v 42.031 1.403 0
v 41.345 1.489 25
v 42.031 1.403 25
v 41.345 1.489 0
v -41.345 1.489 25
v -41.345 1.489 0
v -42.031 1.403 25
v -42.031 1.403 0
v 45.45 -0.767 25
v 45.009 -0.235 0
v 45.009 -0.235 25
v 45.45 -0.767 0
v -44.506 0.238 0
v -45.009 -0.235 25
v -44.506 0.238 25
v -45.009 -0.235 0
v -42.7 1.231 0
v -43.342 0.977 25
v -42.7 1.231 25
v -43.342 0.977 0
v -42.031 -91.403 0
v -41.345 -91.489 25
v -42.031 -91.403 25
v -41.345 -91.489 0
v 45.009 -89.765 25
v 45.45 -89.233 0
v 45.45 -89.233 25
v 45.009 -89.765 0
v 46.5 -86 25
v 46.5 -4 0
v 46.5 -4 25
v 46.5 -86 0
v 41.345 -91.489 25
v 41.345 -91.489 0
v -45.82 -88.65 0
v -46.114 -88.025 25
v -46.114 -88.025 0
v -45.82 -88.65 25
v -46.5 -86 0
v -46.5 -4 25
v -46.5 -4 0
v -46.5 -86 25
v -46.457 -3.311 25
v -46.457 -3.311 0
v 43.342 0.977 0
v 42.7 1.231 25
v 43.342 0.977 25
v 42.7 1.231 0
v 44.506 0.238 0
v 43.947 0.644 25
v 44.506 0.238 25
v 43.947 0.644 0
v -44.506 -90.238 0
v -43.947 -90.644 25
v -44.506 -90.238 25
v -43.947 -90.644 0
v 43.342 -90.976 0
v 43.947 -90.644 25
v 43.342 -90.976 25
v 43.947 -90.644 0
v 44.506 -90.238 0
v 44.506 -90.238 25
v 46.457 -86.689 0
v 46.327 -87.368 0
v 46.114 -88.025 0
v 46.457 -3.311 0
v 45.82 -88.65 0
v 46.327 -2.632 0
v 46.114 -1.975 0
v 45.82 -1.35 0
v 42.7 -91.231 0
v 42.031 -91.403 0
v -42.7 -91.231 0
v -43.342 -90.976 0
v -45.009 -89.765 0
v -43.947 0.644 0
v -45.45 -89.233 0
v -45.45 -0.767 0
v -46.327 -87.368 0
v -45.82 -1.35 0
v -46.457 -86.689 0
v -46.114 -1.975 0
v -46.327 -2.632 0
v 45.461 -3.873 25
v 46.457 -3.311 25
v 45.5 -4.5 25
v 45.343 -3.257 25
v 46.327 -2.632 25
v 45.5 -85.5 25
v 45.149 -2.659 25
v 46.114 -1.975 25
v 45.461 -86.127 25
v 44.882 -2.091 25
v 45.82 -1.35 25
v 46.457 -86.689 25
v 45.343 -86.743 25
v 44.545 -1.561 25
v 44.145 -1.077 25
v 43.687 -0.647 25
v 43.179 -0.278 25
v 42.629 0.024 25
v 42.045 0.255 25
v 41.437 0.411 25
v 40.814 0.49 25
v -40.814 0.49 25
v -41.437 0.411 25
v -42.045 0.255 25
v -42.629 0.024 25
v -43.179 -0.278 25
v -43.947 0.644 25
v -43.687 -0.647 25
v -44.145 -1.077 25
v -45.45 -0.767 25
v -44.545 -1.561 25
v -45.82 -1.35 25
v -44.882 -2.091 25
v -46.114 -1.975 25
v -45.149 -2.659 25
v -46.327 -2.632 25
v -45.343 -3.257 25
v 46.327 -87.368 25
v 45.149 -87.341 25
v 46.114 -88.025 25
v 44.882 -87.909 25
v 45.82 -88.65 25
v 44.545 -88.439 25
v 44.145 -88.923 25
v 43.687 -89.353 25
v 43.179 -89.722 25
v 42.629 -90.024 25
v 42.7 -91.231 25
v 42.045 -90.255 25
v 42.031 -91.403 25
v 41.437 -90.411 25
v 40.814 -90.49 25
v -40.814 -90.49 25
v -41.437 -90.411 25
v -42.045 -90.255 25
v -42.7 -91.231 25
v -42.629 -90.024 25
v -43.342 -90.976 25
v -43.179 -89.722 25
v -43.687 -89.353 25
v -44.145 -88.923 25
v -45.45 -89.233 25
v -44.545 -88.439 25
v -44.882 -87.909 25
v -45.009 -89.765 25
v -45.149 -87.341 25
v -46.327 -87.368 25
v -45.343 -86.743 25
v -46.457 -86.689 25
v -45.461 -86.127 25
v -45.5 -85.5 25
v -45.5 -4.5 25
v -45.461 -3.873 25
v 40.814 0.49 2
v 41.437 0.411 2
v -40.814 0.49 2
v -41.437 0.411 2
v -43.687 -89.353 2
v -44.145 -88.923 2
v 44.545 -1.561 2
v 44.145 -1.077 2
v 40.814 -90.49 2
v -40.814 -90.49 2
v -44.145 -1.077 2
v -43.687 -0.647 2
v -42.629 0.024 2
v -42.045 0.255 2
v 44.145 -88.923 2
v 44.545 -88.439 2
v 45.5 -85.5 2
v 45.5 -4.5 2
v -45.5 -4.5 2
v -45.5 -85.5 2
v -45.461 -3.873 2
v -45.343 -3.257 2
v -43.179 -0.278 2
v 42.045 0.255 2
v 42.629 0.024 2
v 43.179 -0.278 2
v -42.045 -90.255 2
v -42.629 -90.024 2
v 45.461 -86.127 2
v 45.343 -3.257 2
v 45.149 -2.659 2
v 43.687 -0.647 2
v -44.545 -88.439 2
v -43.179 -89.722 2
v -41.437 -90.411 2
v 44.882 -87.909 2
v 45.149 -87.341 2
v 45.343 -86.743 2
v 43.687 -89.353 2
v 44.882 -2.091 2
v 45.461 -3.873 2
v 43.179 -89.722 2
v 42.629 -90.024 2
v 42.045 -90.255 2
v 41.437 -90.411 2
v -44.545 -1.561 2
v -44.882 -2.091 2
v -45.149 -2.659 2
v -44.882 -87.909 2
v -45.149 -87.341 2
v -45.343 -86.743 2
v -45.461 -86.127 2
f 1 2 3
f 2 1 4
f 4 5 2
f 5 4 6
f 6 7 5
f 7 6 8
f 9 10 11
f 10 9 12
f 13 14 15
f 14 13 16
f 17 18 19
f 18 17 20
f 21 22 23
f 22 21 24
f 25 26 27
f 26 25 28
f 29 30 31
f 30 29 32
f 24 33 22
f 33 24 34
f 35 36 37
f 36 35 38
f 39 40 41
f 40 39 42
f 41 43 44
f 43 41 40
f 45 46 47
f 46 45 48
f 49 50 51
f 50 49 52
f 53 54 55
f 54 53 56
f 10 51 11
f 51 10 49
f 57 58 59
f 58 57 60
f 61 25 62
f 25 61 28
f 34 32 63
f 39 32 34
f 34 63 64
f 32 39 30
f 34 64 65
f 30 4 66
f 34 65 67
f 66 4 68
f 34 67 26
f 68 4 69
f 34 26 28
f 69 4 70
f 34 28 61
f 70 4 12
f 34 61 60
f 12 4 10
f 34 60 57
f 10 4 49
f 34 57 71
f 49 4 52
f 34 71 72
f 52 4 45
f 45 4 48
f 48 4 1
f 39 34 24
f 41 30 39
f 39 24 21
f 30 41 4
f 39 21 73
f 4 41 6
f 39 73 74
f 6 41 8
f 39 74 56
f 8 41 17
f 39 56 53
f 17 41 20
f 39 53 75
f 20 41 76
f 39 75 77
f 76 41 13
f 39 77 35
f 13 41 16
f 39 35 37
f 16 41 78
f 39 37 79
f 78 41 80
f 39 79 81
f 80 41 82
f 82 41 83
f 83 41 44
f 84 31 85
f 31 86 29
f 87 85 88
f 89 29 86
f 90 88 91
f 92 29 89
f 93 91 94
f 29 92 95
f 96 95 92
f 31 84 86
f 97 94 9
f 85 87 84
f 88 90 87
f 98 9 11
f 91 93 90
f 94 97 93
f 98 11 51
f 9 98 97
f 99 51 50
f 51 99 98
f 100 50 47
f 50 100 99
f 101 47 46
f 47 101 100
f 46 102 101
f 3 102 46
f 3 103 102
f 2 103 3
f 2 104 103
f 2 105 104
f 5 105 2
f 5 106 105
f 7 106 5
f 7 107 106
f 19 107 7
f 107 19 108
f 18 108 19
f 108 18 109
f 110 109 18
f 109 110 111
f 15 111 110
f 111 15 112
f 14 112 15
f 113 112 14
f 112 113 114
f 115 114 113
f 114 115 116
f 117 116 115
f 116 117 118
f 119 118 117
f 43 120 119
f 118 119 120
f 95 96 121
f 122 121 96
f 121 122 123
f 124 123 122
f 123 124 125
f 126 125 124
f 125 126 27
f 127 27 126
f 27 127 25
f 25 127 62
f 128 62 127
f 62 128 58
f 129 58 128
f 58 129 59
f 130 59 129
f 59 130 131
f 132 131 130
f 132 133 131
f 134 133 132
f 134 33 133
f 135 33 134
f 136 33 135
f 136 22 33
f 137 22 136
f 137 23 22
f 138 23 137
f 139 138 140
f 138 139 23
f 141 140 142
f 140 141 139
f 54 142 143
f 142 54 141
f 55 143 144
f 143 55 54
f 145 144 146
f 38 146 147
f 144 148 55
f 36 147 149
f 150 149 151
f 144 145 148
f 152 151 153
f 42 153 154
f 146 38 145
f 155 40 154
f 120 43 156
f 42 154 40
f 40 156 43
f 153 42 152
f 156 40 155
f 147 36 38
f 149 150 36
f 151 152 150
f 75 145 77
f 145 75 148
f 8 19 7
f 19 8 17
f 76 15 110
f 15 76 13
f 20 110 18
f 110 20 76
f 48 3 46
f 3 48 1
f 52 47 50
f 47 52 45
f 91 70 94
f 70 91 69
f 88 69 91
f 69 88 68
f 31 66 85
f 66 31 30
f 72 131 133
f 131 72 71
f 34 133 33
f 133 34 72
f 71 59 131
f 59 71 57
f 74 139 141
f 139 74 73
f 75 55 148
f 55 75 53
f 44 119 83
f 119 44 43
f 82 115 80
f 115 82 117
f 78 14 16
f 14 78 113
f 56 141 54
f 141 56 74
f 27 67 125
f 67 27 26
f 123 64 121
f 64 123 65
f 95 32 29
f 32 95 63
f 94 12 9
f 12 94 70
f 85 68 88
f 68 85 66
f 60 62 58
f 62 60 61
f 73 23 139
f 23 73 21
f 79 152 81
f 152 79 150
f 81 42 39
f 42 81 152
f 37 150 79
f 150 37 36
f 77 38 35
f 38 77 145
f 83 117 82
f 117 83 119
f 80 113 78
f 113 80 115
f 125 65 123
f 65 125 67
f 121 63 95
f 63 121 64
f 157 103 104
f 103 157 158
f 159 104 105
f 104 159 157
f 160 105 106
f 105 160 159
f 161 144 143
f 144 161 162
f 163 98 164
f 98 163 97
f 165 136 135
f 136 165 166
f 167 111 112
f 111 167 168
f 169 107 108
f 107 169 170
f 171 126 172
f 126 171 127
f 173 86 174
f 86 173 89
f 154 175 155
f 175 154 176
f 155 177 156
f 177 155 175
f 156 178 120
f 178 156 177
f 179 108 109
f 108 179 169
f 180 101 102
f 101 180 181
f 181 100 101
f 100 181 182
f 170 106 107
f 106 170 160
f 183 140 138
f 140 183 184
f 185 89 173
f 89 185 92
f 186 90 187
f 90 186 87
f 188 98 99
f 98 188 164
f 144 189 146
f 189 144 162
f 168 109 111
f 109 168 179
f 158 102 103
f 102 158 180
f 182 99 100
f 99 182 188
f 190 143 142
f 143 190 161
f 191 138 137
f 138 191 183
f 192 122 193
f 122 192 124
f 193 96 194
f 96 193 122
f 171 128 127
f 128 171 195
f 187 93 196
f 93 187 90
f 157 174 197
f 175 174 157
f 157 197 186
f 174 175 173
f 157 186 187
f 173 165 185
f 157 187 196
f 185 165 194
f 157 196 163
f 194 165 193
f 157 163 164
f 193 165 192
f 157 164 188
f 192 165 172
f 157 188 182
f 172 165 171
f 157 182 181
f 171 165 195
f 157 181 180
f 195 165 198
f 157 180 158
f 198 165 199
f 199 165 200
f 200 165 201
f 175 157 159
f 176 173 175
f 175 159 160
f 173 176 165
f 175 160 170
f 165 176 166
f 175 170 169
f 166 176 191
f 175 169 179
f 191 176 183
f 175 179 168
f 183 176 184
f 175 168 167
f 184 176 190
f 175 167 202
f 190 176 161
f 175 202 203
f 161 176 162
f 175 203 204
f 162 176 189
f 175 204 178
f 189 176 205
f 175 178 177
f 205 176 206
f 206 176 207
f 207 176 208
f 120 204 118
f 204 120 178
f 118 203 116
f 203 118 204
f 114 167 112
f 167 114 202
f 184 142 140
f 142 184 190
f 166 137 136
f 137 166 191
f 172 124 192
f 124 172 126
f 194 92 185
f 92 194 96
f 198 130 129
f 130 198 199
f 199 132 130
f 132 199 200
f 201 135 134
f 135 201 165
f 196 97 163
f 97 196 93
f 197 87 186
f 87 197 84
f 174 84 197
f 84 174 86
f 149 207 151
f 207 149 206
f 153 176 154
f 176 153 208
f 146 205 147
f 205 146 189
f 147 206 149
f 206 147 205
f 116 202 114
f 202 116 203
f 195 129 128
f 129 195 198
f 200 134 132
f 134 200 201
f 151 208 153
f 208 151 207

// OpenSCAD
$fn = 50;


difference() {
	union() {
		translate(v = [0, -45.0000000000, 0]) {
			hull() {
				translate(v = [-41.0000000000, 41.0000000000, 0]) {
					cylinder(h = 25, r = 5.5000000000);
				}
				translate(v = [41.0000000000, 41.0000000000, 0]) {
					cylinder(h = 25, r = 5.5000000000);
				}
				translate(v = [-41.0000000000, -41.0000000000, 0]) {
					cylinder(h = 25, r = 5.5000000000);
				}
				translate(v = [41.0000000000, -41.0000000000, 0]) {
					cylinder(h = 25, r = 5.5000000000);
				}
			}
		}
	}
	union() {
		translate(v = [0, -45.0000000000, 2]) {
			hull() {
				translate(v = [-40.5000000000, 40.5000000000, 0]) {
					cylinder(h = 50, r = 5);
				}
				translate(v = [40.5000000000, 40.5000000000, 0]) {
					cylinder(h = 50, r = 5);
				}
				translate(v = [-40.5000000000, -40.5000000000, 0]) {
					cylinder(h = 50, r = 5);
				}
				translate(v = [40.5000000000, -40.5000000000, 0]) {
					cylinder(h = 50, r = 5);
				}
			}
		}
	}
}
